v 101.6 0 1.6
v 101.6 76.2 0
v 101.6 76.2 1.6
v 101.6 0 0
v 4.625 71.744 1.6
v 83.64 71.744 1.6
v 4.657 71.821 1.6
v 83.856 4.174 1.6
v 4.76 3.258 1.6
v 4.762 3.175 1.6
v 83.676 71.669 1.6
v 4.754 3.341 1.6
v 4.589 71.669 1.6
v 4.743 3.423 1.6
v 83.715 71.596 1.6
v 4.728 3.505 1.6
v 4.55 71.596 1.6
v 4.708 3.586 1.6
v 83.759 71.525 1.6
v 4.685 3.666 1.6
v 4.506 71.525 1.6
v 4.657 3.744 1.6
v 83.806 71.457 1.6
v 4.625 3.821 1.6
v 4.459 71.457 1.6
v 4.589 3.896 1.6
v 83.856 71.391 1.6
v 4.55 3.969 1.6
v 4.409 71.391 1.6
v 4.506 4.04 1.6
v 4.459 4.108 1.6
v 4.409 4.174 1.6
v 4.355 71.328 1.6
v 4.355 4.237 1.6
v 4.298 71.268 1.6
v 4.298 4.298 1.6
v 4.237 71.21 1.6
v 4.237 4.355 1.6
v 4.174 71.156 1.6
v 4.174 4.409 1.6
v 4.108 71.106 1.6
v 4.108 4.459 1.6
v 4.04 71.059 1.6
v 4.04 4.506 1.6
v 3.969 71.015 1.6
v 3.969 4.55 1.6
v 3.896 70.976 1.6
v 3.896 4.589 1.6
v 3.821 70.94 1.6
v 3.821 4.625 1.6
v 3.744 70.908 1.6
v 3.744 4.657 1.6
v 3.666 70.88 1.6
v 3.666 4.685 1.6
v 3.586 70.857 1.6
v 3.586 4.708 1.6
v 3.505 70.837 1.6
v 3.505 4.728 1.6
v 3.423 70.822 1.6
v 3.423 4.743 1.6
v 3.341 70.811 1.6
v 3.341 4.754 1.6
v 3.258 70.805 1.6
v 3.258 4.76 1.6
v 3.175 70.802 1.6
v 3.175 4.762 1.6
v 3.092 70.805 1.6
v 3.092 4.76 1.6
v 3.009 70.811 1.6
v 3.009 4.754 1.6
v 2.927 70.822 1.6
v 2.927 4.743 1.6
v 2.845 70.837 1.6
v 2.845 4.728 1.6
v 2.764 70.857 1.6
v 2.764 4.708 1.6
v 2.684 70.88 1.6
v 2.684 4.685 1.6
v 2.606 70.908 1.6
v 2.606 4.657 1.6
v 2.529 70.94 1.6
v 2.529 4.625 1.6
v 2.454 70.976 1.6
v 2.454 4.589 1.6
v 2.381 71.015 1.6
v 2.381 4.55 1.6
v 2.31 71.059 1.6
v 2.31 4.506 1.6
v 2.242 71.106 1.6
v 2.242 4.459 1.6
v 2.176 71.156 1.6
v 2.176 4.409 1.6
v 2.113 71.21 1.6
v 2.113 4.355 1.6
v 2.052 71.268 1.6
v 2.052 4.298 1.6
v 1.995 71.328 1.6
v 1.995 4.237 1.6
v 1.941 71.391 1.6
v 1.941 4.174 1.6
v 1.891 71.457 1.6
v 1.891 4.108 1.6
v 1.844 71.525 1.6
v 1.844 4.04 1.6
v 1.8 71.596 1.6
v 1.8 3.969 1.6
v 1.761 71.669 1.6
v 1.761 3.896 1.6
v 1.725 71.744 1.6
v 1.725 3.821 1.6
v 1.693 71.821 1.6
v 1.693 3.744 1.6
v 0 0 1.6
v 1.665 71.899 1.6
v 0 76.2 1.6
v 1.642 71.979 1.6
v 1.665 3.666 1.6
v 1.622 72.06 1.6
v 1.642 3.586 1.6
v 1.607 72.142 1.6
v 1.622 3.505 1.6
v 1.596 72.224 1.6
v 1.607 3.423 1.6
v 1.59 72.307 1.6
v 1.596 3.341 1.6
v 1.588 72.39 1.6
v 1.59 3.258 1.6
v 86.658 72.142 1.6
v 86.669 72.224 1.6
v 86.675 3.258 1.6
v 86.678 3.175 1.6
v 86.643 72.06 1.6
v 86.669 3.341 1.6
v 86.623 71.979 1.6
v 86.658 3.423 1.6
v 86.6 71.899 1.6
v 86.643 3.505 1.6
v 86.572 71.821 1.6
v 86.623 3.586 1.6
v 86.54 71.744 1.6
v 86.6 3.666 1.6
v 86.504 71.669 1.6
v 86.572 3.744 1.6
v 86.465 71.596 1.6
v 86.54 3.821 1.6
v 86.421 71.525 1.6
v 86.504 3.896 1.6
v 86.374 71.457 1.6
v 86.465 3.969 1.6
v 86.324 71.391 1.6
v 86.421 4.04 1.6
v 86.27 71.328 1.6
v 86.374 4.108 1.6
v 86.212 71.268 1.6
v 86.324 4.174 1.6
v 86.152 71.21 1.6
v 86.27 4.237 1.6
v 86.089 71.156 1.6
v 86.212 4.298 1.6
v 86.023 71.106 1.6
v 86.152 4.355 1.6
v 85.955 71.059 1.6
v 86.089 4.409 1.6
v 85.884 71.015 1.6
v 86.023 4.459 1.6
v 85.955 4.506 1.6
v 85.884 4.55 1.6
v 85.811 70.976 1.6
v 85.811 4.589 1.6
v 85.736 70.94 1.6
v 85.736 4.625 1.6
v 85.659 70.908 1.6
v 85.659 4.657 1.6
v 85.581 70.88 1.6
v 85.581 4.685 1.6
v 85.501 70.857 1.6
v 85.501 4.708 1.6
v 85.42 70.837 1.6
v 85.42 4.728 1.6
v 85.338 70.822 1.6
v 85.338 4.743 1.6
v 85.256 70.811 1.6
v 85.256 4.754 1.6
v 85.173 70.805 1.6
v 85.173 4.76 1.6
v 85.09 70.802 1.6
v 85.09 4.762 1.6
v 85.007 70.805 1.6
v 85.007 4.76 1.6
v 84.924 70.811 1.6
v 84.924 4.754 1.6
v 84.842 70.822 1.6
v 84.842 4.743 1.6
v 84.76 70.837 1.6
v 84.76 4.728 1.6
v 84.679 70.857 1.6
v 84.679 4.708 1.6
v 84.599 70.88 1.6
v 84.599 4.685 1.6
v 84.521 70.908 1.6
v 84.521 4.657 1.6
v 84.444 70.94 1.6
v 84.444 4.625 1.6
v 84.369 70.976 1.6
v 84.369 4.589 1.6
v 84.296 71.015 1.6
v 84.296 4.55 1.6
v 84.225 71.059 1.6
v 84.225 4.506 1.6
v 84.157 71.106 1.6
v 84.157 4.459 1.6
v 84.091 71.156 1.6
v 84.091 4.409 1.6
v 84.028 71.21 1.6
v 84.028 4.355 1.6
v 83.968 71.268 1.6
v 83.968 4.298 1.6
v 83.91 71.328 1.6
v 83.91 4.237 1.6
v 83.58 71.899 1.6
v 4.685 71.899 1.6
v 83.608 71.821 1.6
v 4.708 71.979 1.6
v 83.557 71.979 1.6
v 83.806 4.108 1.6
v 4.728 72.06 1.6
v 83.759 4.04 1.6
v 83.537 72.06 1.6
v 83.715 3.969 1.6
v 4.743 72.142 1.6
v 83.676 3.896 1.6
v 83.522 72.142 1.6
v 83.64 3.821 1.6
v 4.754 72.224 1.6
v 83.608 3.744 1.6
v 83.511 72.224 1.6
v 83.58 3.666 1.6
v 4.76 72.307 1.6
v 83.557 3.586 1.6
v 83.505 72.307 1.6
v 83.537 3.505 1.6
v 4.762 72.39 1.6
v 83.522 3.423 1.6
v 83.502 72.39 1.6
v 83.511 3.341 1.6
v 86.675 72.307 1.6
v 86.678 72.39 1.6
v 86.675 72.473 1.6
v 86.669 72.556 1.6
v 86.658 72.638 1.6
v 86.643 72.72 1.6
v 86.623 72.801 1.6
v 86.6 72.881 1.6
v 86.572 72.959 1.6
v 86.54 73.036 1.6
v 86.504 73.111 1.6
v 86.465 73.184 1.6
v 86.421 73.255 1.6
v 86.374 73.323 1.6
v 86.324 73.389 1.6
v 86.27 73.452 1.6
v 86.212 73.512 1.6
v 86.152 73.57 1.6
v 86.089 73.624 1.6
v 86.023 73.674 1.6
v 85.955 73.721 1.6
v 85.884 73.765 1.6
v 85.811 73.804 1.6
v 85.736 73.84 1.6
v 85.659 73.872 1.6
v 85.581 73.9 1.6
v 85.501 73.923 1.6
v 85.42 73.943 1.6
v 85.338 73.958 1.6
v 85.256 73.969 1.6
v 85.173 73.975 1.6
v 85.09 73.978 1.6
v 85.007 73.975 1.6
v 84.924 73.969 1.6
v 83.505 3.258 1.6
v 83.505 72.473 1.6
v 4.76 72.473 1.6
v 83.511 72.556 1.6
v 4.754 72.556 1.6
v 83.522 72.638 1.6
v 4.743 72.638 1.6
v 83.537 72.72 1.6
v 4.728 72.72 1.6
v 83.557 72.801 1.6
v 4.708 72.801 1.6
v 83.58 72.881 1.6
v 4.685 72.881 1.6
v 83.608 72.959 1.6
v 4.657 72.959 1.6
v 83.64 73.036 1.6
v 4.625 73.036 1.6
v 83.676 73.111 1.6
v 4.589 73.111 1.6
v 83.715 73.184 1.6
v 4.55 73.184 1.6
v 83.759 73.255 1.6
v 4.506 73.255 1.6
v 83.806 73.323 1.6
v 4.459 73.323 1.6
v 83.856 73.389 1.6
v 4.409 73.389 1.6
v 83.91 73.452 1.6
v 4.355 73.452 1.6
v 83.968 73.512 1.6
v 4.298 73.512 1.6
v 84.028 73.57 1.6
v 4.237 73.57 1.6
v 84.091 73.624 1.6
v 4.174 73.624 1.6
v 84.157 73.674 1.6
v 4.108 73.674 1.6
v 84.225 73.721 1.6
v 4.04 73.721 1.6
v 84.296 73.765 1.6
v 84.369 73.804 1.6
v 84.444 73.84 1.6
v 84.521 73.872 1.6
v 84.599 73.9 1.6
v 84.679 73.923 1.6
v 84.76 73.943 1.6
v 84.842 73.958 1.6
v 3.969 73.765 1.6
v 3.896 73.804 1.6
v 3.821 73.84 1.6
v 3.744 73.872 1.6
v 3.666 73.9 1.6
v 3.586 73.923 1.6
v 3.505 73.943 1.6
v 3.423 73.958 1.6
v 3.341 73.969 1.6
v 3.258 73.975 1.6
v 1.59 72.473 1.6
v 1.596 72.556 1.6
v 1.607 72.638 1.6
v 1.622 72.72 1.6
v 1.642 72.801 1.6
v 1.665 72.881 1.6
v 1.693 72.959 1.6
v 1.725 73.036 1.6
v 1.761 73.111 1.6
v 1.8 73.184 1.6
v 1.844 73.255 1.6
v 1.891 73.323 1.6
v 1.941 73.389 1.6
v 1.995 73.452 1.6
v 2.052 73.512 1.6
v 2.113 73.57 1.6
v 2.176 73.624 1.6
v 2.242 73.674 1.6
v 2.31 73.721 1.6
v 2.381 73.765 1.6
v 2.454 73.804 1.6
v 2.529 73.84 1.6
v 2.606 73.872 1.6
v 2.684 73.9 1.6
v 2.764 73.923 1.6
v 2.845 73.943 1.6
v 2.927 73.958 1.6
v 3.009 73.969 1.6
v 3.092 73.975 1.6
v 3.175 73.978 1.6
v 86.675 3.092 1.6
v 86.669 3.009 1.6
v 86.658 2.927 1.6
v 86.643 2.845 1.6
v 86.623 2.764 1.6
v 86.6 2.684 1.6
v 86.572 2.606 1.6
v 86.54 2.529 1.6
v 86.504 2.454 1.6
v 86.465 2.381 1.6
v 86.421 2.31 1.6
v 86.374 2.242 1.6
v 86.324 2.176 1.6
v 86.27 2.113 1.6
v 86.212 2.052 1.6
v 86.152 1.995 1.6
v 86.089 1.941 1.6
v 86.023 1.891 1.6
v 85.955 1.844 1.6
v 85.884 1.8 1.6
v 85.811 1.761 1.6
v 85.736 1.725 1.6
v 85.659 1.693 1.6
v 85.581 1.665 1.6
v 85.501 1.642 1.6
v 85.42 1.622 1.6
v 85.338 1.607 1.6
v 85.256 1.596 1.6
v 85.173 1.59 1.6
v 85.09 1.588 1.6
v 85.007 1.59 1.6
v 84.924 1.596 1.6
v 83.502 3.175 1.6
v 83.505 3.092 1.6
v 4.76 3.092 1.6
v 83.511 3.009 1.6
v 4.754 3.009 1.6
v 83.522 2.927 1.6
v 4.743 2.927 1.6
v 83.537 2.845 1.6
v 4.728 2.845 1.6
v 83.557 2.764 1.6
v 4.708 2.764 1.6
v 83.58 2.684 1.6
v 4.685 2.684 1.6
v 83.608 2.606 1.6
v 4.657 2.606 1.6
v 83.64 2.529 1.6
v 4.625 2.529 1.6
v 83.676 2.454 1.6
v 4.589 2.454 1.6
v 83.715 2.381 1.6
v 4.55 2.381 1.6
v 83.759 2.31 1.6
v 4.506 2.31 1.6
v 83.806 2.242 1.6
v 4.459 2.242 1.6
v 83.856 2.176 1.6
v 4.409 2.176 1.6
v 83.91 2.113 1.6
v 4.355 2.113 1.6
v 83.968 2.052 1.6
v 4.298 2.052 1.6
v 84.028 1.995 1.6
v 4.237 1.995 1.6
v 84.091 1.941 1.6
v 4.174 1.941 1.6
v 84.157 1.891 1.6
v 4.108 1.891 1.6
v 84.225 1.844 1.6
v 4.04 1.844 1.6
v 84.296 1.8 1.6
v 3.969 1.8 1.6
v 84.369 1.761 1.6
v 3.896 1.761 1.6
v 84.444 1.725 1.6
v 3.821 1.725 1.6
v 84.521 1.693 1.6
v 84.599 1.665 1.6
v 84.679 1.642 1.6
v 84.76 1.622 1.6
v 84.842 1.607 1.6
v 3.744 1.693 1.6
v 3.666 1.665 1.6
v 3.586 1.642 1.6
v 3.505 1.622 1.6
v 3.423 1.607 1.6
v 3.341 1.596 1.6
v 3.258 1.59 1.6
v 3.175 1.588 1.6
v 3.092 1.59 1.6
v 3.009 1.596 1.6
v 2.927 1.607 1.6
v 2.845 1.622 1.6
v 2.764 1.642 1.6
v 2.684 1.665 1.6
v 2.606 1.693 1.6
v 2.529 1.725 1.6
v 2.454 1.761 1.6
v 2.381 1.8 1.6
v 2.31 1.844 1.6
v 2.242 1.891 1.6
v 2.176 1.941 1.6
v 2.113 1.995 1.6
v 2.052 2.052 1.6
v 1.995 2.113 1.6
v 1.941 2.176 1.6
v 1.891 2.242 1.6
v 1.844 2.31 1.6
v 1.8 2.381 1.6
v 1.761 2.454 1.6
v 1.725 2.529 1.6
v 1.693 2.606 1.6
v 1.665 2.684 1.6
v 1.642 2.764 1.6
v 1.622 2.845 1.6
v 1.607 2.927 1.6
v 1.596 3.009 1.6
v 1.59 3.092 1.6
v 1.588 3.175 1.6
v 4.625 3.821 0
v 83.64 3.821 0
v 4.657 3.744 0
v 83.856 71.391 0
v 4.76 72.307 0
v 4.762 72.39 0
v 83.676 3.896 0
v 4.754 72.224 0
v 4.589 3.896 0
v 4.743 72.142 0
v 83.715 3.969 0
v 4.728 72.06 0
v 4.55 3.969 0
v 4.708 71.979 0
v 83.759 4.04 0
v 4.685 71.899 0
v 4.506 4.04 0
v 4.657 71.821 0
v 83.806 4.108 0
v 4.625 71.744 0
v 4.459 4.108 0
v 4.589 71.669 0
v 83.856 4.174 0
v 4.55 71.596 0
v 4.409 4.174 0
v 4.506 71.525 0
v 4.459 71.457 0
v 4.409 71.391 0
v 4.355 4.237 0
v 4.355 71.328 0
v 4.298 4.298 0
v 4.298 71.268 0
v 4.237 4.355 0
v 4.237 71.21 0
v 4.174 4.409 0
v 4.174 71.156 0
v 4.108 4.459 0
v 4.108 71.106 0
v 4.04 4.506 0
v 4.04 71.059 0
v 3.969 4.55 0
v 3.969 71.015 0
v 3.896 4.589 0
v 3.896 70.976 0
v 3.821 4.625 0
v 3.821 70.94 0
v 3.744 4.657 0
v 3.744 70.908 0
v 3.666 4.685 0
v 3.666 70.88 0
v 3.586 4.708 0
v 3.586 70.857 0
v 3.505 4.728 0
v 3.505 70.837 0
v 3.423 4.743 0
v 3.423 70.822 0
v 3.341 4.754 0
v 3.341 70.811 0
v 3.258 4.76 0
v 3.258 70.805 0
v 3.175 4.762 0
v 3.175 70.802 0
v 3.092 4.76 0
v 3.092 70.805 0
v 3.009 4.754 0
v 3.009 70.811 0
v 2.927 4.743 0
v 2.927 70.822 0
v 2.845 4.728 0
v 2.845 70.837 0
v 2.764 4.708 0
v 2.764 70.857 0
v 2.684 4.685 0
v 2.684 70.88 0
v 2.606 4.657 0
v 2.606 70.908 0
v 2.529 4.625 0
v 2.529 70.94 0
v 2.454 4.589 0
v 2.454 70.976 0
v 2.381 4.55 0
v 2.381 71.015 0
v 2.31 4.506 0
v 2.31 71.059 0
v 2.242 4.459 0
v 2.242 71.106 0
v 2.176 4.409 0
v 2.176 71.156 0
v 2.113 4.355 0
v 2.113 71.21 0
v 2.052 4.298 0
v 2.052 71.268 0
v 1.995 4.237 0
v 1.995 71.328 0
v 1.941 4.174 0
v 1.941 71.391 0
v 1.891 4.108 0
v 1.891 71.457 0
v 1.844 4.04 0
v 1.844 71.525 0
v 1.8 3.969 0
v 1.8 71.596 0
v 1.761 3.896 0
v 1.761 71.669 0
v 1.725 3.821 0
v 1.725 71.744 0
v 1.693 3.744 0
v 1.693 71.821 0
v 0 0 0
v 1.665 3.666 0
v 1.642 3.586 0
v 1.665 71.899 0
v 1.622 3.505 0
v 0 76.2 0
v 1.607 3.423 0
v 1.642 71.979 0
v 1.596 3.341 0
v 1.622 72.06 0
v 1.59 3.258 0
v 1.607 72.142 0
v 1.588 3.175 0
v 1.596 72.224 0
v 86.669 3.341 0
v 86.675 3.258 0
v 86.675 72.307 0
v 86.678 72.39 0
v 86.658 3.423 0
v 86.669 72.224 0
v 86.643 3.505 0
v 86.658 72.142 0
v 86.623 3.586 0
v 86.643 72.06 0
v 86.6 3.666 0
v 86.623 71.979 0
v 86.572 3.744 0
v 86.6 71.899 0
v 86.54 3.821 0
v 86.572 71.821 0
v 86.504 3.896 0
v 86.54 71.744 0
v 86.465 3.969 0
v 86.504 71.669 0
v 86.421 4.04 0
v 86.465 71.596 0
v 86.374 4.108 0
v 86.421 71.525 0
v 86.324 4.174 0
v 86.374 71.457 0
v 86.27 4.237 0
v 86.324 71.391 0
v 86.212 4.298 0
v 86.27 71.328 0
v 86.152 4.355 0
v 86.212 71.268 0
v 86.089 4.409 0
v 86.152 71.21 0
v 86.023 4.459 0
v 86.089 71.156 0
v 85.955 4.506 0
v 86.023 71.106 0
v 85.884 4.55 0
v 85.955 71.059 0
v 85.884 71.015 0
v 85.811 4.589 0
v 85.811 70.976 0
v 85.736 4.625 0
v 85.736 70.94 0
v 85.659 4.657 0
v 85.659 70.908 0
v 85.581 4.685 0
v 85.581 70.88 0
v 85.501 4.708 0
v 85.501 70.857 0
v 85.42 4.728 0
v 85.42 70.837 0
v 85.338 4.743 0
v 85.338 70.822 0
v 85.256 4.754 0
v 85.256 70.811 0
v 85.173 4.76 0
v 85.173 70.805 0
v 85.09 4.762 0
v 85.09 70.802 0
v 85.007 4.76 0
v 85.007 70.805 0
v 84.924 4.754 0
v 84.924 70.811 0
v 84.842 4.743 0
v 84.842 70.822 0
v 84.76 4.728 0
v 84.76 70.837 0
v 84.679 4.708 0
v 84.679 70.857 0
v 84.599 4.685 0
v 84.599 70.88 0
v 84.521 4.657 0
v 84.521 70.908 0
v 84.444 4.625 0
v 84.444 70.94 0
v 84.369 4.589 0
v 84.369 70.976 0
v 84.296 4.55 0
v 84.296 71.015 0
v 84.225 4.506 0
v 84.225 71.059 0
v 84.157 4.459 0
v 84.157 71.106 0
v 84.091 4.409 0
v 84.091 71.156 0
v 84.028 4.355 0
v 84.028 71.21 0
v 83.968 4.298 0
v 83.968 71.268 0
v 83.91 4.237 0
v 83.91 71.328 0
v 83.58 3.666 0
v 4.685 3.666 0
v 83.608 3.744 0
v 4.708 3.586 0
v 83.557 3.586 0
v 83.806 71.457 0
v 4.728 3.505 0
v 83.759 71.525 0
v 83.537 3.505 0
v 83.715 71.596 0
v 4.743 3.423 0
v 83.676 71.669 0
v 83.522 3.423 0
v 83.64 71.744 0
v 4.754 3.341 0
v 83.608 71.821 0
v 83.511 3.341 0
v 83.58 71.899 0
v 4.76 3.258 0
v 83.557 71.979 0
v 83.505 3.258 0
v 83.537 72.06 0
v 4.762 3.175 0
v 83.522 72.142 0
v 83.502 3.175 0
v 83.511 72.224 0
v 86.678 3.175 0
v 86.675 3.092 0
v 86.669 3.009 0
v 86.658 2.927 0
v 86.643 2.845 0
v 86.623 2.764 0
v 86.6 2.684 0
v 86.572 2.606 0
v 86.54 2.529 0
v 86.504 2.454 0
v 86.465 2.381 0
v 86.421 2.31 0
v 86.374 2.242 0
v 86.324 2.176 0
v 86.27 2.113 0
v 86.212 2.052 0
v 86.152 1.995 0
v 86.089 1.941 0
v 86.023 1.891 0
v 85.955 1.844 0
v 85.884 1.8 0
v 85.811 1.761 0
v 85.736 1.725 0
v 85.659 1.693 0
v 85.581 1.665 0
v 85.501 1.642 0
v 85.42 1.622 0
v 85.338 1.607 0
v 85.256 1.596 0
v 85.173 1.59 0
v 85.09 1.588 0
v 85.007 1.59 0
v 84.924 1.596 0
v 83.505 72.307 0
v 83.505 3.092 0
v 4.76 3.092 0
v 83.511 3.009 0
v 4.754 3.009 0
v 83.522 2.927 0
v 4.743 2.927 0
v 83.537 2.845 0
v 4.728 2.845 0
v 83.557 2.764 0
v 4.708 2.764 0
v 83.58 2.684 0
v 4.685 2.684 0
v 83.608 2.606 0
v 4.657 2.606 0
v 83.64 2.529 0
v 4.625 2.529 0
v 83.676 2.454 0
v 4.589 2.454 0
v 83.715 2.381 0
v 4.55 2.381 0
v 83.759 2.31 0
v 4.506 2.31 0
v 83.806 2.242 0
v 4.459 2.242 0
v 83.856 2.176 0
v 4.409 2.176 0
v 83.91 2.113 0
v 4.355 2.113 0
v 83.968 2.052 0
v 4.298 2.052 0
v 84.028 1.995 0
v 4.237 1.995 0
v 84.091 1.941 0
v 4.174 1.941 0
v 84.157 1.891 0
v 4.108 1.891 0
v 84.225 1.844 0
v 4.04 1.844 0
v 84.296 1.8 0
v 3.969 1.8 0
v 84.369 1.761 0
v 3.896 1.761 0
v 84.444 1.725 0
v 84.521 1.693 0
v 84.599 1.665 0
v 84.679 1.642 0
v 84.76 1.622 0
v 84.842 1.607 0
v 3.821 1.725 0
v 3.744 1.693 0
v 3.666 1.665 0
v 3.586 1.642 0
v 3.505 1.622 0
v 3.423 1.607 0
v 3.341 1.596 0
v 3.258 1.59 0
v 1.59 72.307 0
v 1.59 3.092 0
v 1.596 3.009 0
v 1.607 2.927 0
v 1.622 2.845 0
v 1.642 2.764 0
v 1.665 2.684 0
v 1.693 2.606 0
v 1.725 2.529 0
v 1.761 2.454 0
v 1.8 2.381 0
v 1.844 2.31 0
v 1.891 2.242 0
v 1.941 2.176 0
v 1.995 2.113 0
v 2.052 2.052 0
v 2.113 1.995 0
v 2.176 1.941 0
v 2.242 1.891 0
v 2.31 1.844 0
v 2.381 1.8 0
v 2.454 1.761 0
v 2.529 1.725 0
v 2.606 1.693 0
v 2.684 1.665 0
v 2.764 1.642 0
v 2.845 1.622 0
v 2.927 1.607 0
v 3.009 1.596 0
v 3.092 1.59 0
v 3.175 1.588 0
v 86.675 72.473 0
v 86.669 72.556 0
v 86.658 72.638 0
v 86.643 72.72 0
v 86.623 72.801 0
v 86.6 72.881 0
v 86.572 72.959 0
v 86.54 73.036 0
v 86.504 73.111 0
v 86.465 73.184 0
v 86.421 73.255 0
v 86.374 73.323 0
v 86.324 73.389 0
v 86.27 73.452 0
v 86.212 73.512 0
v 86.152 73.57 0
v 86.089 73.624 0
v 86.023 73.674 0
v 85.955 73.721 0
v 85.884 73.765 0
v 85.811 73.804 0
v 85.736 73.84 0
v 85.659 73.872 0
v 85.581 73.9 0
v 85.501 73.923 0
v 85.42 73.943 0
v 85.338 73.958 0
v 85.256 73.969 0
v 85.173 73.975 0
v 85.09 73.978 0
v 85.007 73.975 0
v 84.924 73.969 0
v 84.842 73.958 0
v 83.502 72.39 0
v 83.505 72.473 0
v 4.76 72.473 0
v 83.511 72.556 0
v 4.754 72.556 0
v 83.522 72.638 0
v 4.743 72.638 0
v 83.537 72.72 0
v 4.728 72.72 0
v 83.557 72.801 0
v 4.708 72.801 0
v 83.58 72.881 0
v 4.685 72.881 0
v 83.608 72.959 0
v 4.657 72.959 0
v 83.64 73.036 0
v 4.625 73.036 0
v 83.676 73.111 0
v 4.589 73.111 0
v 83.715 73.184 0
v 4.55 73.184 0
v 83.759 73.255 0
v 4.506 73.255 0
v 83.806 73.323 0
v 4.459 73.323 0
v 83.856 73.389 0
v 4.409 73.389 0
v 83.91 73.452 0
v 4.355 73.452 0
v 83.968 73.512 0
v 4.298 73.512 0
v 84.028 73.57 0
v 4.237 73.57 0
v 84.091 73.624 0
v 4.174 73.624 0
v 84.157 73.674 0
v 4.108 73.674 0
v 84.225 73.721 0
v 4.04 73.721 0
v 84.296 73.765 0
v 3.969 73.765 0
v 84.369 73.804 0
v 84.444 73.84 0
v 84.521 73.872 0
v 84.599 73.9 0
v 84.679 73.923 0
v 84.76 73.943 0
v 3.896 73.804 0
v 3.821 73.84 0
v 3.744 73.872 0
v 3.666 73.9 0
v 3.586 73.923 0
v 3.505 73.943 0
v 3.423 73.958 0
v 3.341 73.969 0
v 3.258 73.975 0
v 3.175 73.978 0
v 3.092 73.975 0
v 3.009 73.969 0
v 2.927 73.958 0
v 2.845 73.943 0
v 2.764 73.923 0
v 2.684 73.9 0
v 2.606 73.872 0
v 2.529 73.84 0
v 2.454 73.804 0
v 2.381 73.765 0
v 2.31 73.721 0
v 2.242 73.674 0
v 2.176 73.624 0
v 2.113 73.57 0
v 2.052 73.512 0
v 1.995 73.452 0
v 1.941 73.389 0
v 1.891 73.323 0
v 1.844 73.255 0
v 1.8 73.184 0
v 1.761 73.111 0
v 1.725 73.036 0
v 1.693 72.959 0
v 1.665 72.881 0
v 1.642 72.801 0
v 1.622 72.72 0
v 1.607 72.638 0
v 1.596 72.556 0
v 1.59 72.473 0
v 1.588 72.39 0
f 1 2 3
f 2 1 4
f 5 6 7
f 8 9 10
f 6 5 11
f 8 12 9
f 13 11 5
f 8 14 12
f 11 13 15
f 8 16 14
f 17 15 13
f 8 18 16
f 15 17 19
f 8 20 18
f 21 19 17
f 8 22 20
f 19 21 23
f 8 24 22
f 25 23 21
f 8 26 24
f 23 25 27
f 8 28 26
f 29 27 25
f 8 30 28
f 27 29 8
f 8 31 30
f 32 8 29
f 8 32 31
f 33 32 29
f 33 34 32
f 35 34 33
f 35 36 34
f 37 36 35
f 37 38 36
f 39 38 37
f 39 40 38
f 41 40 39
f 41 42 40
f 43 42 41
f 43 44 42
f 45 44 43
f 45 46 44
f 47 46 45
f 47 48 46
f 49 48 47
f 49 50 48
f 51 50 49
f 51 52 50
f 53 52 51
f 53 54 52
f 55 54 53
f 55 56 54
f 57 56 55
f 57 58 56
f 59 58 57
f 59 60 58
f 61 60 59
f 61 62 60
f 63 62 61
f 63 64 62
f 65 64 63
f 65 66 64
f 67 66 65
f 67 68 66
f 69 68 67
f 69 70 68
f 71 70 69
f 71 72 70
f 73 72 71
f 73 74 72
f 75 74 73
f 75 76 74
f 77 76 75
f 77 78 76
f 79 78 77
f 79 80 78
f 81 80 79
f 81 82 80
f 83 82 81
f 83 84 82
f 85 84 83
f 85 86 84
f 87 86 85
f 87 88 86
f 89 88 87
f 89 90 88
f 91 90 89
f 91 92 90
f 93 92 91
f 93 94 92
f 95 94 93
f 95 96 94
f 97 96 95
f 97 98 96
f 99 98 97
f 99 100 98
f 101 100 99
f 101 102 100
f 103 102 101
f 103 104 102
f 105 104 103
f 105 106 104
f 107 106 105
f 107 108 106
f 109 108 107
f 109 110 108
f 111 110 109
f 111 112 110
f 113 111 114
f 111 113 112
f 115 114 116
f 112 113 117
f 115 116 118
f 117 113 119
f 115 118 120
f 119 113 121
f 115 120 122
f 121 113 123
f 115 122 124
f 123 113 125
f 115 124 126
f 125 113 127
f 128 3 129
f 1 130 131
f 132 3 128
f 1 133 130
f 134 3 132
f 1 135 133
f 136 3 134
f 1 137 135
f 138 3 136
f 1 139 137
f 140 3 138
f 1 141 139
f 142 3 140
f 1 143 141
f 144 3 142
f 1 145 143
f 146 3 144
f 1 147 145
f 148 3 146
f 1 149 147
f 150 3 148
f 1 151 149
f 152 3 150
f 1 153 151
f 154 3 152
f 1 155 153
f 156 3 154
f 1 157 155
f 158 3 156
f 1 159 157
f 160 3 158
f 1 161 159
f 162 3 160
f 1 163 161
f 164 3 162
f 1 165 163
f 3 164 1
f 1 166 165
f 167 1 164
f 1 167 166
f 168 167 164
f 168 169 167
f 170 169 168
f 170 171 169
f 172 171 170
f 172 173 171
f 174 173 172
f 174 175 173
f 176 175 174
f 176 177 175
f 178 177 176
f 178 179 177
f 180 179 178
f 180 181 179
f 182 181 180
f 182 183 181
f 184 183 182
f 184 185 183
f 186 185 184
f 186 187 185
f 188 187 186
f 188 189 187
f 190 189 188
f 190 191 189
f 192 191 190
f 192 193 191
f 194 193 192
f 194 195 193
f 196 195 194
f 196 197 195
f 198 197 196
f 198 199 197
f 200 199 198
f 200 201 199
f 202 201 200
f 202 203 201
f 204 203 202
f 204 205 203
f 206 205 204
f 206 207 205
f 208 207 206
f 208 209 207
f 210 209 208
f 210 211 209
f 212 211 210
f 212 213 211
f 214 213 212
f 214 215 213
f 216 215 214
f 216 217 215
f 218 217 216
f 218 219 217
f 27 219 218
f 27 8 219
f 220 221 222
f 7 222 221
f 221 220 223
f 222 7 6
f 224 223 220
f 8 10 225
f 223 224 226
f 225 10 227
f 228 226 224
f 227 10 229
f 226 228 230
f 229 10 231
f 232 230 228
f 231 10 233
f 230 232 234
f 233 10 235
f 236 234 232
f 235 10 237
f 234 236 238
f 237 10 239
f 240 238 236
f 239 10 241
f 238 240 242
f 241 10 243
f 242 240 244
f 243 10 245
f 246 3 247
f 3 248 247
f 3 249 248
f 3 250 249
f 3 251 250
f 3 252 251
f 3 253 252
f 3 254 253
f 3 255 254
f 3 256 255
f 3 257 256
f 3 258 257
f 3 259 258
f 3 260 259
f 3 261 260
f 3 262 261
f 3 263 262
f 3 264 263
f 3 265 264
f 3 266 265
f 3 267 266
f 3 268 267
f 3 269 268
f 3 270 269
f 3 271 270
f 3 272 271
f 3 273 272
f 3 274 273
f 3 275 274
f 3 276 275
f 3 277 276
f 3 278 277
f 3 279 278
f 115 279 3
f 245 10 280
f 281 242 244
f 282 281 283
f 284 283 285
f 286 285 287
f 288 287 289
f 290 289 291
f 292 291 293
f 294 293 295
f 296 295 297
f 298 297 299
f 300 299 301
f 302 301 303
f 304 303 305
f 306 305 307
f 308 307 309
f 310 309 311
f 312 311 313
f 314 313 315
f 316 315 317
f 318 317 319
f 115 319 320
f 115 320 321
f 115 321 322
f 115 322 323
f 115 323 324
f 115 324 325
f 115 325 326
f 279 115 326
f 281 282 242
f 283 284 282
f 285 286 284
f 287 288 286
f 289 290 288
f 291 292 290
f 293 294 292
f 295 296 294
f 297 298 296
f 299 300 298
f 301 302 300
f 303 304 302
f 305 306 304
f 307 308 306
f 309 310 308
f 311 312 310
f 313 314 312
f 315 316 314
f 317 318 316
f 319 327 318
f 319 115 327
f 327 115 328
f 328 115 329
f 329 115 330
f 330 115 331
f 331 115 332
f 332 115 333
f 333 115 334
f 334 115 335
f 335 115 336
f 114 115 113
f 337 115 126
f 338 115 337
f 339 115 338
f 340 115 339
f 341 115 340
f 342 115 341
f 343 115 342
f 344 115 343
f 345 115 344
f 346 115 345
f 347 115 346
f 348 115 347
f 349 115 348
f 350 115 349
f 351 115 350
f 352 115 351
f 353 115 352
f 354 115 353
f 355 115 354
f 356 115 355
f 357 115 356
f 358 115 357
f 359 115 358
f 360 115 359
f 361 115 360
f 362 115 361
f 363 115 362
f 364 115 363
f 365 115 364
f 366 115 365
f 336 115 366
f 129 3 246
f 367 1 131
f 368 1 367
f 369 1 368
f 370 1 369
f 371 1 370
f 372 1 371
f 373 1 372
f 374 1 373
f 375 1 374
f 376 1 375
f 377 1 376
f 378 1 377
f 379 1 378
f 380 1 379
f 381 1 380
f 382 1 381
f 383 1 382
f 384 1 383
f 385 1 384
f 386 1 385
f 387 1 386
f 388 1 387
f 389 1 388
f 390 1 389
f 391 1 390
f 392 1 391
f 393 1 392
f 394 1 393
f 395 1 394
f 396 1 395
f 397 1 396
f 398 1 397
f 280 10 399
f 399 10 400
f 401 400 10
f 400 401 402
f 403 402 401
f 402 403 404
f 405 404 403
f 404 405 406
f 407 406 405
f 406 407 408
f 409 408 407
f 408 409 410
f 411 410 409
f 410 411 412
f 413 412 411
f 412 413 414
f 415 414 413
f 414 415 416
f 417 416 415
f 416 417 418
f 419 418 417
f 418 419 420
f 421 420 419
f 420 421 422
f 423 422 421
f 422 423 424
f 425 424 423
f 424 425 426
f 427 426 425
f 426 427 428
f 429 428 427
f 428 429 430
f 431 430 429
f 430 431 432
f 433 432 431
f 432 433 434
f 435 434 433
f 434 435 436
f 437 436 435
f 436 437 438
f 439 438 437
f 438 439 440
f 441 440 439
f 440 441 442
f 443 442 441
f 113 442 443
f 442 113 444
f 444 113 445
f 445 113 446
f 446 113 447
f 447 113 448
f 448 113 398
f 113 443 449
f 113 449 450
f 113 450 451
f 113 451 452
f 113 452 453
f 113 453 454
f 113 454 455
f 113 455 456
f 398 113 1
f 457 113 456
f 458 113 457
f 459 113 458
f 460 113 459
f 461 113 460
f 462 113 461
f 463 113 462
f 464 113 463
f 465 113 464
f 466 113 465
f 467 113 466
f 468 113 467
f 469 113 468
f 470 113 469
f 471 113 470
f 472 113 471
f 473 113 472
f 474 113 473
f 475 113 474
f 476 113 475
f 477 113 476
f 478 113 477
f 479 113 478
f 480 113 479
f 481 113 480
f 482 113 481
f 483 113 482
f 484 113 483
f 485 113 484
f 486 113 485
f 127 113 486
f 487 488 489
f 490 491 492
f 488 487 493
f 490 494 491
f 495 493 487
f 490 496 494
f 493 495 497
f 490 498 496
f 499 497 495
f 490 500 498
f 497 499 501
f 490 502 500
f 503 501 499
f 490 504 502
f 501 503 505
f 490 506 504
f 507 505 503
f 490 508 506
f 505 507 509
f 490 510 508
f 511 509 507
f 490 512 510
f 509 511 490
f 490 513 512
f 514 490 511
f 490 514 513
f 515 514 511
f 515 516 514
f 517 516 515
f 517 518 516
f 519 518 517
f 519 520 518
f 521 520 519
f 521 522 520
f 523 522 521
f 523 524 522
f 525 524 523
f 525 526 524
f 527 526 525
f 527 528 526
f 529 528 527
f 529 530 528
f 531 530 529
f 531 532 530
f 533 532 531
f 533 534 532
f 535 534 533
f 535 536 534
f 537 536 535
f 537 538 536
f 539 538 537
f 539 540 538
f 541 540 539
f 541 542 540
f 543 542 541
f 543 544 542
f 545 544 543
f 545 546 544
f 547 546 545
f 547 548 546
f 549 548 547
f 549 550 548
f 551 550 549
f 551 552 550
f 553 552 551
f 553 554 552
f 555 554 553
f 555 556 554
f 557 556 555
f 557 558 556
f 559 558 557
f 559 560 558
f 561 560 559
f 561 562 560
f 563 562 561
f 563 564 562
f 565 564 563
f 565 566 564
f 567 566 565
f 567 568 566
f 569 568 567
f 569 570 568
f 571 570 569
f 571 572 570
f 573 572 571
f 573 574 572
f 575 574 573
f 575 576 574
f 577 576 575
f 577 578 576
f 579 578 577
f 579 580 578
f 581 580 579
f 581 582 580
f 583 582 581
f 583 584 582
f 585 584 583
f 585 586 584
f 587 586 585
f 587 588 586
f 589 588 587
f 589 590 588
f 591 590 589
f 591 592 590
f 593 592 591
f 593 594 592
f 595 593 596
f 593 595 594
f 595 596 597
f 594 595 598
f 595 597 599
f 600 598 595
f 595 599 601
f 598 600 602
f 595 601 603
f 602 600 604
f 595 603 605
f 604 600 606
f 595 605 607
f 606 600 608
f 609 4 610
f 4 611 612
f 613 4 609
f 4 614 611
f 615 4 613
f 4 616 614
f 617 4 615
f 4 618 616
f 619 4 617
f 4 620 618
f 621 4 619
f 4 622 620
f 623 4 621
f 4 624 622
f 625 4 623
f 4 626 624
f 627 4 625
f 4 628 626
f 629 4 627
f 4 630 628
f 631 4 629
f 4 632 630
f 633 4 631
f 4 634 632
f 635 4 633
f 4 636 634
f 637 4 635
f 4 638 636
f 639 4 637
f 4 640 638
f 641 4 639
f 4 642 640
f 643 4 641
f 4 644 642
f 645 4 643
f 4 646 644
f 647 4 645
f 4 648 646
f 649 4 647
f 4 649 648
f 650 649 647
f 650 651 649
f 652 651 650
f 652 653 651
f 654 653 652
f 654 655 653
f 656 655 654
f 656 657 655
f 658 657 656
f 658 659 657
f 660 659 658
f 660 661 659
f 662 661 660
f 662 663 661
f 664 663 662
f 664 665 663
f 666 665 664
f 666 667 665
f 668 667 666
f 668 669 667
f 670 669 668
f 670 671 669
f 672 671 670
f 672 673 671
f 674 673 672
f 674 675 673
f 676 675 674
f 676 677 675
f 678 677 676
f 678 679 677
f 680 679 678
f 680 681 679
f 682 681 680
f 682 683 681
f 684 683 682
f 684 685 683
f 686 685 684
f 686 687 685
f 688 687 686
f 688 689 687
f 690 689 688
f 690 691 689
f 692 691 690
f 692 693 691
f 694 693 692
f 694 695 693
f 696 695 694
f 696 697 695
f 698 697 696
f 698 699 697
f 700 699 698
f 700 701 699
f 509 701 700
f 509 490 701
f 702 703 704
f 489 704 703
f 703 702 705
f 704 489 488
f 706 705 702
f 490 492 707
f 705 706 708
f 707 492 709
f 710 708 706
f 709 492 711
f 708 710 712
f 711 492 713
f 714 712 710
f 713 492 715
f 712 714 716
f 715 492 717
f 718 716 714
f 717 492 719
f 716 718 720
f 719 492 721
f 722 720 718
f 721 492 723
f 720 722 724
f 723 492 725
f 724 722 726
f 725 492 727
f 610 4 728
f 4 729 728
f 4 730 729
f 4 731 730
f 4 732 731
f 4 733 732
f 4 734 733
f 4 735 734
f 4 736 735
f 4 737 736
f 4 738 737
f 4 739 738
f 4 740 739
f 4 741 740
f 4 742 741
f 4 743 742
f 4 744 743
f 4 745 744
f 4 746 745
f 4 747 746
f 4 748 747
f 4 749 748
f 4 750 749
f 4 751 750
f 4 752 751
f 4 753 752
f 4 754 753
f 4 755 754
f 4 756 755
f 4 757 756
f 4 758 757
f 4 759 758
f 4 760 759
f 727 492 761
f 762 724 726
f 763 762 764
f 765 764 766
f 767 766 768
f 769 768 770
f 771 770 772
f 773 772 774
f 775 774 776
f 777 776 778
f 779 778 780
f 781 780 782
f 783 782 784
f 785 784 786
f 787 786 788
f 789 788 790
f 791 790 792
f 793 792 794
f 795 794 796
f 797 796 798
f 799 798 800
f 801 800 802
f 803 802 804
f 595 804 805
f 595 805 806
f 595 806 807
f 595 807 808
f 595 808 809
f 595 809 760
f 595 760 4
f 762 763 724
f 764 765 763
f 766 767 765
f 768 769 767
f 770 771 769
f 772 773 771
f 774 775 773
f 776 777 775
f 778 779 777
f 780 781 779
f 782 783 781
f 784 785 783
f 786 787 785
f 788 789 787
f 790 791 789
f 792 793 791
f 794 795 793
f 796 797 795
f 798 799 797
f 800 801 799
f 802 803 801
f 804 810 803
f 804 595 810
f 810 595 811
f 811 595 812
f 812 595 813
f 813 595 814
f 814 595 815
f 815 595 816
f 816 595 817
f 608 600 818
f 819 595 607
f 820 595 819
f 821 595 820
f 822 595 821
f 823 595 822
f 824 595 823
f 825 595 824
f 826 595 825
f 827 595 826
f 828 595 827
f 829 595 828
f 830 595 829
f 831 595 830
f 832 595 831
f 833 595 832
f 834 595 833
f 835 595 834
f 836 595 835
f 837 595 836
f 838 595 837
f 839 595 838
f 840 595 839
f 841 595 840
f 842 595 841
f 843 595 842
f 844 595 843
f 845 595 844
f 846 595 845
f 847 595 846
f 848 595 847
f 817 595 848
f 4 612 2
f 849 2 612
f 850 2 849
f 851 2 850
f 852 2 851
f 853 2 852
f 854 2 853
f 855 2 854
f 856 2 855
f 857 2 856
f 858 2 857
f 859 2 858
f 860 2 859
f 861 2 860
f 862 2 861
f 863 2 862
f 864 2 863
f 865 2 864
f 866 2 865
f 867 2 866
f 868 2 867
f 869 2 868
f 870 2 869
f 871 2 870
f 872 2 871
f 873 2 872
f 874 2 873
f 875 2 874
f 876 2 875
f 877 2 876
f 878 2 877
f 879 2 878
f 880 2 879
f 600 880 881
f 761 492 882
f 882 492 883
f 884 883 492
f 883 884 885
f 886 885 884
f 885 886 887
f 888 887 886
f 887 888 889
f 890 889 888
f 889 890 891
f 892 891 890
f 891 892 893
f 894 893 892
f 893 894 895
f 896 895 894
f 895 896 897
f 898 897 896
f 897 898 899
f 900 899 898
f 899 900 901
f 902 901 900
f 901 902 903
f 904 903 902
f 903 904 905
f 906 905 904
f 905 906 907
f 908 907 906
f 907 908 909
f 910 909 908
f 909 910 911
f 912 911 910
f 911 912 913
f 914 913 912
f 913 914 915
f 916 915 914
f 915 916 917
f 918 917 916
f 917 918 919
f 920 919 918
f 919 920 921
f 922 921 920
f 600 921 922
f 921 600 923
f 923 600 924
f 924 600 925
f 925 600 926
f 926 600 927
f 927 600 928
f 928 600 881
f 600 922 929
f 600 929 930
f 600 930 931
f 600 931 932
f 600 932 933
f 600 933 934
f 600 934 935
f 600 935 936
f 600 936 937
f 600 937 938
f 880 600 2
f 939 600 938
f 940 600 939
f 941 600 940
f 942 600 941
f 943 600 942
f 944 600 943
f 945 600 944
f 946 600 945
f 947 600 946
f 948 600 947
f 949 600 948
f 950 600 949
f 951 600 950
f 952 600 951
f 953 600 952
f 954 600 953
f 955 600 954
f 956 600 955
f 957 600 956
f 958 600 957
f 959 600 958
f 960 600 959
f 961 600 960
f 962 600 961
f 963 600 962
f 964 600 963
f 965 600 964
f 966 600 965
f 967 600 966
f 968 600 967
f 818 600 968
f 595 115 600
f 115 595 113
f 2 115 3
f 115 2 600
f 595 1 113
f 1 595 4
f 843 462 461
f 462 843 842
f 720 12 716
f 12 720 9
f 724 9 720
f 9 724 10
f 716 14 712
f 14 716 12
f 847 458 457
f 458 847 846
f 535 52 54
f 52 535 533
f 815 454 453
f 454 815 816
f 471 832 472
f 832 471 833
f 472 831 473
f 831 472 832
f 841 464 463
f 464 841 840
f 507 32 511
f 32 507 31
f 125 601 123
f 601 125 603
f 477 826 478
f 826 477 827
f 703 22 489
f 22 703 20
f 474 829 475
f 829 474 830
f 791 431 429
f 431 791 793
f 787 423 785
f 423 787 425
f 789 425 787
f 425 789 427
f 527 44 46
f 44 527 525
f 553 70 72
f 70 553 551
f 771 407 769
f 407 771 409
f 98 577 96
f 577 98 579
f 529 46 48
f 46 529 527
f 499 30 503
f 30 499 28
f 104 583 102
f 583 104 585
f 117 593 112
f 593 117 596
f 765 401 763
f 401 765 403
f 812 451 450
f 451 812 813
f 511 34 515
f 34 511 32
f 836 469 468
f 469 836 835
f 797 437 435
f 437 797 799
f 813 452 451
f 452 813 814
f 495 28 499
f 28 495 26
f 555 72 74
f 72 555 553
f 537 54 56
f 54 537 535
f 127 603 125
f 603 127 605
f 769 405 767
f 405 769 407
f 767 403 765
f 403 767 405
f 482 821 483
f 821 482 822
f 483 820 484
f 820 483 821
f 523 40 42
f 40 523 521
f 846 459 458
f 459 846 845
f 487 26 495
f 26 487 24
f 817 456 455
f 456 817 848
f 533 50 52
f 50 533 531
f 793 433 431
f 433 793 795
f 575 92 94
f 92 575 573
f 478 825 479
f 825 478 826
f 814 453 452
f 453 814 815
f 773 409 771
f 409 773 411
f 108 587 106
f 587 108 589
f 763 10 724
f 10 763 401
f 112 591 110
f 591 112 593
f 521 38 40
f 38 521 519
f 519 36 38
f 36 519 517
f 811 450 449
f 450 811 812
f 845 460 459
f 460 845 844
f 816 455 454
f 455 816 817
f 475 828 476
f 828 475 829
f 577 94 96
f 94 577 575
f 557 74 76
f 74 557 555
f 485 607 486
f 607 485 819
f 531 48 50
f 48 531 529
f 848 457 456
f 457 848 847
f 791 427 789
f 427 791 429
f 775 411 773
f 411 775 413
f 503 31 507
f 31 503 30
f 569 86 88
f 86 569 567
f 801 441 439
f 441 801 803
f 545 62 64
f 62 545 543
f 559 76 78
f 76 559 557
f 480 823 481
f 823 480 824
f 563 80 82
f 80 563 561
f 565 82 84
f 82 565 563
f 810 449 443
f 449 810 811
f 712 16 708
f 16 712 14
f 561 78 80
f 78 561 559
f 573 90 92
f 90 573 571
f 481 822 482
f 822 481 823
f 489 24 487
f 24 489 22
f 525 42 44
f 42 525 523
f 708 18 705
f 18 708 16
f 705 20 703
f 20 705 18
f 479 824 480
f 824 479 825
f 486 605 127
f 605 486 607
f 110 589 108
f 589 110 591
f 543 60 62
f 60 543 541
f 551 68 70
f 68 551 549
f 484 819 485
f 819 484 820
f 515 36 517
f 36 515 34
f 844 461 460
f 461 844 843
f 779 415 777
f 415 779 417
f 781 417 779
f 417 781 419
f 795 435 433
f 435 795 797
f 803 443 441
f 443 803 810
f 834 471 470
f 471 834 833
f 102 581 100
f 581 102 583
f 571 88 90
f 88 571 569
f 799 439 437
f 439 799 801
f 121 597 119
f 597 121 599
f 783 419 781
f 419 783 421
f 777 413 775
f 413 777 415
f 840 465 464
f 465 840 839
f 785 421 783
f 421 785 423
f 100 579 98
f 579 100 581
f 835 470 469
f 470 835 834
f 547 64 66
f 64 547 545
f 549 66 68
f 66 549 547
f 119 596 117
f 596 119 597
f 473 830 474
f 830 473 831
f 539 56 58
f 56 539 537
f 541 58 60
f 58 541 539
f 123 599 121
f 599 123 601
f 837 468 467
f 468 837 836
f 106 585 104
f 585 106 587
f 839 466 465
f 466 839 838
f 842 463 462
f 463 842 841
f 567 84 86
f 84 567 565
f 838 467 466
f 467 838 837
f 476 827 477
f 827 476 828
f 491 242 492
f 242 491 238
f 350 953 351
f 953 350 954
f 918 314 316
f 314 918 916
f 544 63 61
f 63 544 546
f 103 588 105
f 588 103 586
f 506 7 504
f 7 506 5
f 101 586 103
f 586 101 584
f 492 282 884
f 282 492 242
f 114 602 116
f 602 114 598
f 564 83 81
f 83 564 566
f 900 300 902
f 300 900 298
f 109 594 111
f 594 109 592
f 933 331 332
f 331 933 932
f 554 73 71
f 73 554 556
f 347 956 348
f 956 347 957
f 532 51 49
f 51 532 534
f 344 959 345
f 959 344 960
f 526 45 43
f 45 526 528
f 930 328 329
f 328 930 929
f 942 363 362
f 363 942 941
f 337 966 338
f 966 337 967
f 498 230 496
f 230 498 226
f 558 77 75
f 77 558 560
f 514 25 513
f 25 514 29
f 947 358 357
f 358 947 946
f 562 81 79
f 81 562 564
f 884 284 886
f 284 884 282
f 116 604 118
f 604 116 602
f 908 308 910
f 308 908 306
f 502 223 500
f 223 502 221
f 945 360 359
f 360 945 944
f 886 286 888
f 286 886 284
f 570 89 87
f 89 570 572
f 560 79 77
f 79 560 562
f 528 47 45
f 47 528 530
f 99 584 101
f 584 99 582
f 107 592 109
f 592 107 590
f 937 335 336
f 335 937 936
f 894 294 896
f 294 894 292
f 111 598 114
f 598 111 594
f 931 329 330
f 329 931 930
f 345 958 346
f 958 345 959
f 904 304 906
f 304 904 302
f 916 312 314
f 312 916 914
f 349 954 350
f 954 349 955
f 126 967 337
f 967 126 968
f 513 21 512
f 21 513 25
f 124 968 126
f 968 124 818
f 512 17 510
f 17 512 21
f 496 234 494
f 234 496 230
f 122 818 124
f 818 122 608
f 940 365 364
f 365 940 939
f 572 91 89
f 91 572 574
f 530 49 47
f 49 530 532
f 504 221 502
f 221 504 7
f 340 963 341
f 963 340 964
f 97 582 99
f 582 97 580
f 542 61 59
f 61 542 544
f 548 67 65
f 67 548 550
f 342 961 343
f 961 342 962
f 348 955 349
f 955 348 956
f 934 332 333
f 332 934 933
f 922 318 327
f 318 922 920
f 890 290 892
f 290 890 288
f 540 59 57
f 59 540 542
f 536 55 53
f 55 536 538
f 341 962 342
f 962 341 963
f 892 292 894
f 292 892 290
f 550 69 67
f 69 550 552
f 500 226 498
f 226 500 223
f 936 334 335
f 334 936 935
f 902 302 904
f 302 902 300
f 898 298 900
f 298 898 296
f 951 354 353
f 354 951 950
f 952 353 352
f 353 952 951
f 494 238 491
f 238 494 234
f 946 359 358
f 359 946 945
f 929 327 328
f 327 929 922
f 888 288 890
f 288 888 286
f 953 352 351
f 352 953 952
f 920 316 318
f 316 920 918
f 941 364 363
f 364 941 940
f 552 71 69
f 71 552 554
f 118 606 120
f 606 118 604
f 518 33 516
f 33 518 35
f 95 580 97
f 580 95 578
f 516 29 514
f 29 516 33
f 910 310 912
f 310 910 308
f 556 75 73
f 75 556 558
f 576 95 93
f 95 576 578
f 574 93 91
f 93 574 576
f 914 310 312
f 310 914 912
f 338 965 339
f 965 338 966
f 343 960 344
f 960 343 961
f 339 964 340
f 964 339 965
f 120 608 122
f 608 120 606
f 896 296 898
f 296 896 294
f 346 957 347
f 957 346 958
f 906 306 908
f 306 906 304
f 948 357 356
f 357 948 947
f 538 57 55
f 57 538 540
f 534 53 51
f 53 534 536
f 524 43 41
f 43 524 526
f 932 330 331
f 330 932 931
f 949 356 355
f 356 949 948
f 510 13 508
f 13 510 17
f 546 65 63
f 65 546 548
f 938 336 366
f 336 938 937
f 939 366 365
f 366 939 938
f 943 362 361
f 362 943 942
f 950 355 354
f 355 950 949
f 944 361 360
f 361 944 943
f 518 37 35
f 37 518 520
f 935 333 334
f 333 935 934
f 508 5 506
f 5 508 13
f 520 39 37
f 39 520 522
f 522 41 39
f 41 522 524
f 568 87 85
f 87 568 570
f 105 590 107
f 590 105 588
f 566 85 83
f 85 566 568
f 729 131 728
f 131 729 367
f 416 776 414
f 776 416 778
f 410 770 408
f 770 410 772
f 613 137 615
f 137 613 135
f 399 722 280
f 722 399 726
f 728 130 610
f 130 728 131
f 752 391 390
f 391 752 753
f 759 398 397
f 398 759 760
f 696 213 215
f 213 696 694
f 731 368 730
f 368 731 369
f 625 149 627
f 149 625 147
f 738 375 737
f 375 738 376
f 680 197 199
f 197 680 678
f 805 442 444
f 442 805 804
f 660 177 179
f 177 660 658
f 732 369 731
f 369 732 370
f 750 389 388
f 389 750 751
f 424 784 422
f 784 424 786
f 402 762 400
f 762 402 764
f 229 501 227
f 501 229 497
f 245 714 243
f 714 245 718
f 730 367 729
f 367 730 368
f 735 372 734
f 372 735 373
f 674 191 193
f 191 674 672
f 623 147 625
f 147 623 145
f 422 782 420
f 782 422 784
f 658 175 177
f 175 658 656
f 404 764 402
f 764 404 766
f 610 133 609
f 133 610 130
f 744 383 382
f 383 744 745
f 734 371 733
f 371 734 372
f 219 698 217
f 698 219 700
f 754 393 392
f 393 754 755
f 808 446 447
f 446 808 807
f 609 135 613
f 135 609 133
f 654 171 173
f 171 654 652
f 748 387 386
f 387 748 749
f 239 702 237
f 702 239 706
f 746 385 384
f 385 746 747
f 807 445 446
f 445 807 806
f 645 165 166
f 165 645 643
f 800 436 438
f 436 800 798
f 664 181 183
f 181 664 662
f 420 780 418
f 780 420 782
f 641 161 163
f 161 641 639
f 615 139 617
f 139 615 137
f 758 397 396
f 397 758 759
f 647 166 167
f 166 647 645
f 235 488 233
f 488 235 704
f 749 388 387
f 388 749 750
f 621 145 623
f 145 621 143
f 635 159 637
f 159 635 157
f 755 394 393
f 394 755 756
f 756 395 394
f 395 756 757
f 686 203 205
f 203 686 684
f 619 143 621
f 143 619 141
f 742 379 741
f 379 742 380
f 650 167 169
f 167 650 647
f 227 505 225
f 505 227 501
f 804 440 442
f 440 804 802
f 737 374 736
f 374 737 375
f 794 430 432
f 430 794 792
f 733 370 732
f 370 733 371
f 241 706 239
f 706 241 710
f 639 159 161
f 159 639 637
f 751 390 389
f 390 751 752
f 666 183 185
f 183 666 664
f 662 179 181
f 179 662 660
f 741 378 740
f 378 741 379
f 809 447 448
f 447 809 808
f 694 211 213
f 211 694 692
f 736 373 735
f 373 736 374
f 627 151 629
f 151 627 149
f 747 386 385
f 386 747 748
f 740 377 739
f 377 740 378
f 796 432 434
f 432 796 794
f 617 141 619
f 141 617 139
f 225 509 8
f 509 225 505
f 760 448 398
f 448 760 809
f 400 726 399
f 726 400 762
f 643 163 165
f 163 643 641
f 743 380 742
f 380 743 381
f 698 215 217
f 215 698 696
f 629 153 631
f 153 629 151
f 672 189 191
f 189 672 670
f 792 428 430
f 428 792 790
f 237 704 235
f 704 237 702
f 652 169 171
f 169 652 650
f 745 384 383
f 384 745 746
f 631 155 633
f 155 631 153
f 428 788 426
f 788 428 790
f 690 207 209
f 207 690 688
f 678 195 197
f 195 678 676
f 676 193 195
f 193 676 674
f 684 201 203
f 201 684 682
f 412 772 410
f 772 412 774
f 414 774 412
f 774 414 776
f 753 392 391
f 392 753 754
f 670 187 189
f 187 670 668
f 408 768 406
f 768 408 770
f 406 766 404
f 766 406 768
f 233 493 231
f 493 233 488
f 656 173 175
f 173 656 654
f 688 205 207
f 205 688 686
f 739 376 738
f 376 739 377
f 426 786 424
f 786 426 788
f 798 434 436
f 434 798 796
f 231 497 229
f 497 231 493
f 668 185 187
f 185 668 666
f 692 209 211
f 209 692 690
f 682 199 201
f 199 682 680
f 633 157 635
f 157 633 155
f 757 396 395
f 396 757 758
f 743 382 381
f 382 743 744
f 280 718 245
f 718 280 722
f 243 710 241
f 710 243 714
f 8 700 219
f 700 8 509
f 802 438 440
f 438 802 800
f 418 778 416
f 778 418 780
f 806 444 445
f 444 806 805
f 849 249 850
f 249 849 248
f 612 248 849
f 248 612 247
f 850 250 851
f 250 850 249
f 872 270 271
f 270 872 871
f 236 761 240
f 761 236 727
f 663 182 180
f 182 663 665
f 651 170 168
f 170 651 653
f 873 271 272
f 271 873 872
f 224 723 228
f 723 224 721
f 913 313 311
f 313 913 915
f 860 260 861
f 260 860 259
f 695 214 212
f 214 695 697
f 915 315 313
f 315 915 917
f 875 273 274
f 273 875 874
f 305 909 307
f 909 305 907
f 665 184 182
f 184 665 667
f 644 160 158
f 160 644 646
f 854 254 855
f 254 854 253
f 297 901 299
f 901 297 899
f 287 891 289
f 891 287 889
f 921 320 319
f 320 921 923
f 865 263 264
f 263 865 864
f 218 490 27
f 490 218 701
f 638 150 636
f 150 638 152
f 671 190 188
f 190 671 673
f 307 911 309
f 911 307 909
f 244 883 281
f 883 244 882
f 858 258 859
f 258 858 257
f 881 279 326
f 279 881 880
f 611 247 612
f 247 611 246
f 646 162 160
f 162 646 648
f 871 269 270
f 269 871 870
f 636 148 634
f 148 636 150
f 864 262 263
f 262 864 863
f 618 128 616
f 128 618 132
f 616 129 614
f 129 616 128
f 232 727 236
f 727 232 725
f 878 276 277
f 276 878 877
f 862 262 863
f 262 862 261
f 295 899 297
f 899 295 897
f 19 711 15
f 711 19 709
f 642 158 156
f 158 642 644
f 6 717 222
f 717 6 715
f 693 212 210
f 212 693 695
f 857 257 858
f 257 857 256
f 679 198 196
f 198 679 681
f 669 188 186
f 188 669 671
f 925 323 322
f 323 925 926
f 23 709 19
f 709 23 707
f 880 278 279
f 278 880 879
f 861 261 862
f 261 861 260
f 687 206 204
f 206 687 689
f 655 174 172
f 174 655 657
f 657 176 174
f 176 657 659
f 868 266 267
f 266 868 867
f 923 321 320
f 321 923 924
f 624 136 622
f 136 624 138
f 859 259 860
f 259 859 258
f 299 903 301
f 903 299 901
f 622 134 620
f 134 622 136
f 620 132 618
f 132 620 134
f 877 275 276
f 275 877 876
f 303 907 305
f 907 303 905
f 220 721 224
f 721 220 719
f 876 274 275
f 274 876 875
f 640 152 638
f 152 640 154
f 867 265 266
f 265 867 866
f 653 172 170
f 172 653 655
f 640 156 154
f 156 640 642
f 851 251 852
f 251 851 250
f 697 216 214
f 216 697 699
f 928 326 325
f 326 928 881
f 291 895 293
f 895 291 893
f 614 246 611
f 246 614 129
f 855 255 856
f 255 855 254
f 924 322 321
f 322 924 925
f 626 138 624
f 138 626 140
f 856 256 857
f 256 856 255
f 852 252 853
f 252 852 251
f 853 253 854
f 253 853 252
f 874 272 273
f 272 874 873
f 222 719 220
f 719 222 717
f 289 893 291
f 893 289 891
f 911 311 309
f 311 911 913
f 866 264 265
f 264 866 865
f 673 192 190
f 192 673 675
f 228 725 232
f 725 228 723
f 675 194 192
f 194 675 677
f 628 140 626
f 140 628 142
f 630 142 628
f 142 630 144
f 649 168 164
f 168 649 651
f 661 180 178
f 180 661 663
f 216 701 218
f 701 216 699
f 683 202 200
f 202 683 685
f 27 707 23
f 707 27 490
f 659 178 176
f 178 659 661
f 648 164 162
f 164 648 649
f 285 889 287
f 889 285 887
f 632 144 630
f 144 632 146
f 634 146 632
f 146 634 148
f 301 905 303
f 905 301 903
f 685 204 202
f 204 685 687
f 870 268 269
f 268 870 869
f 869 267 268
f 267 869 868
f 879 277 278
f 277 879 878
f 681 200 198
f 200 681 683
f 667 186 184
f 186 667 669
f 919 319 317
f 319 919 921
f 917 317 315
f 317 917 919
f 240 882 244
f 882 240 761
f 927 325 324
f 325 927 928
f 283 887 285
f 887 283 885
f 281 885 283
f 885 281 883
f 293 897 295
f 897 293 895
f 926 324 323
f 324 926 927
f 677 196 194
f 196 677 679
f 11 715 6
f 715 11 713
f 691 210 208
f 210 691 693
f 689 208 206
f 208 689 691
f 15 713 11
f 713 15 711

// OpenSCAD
//
// FireCAM bottom mount - converting imperial units to mm
//

// Mount width & length (inces)
bw = 4;
bl = 3;

// Bezel height (mm)
bh = 1.6;

// Mounting screw diameter (inches)
mh = 0.125;


module hole(x, y, d) {
    translate([x * 25.4, y * 25.4, -1]) {
        cylinder(h = bh+2, r = (d * 25.4)/2, $fn=120);
    }
}


difference() {
    // Plate
    cube([bw * 25.4, bl * 25.4, bh]);
    
    // PCB Mounting holes
    hole(0.125, 0.125, mh);
    hole(0.125, 2.85, mh);
    hole(3.35, 0.125, mh);
    hole(3.35, 2.85, mh);
}
